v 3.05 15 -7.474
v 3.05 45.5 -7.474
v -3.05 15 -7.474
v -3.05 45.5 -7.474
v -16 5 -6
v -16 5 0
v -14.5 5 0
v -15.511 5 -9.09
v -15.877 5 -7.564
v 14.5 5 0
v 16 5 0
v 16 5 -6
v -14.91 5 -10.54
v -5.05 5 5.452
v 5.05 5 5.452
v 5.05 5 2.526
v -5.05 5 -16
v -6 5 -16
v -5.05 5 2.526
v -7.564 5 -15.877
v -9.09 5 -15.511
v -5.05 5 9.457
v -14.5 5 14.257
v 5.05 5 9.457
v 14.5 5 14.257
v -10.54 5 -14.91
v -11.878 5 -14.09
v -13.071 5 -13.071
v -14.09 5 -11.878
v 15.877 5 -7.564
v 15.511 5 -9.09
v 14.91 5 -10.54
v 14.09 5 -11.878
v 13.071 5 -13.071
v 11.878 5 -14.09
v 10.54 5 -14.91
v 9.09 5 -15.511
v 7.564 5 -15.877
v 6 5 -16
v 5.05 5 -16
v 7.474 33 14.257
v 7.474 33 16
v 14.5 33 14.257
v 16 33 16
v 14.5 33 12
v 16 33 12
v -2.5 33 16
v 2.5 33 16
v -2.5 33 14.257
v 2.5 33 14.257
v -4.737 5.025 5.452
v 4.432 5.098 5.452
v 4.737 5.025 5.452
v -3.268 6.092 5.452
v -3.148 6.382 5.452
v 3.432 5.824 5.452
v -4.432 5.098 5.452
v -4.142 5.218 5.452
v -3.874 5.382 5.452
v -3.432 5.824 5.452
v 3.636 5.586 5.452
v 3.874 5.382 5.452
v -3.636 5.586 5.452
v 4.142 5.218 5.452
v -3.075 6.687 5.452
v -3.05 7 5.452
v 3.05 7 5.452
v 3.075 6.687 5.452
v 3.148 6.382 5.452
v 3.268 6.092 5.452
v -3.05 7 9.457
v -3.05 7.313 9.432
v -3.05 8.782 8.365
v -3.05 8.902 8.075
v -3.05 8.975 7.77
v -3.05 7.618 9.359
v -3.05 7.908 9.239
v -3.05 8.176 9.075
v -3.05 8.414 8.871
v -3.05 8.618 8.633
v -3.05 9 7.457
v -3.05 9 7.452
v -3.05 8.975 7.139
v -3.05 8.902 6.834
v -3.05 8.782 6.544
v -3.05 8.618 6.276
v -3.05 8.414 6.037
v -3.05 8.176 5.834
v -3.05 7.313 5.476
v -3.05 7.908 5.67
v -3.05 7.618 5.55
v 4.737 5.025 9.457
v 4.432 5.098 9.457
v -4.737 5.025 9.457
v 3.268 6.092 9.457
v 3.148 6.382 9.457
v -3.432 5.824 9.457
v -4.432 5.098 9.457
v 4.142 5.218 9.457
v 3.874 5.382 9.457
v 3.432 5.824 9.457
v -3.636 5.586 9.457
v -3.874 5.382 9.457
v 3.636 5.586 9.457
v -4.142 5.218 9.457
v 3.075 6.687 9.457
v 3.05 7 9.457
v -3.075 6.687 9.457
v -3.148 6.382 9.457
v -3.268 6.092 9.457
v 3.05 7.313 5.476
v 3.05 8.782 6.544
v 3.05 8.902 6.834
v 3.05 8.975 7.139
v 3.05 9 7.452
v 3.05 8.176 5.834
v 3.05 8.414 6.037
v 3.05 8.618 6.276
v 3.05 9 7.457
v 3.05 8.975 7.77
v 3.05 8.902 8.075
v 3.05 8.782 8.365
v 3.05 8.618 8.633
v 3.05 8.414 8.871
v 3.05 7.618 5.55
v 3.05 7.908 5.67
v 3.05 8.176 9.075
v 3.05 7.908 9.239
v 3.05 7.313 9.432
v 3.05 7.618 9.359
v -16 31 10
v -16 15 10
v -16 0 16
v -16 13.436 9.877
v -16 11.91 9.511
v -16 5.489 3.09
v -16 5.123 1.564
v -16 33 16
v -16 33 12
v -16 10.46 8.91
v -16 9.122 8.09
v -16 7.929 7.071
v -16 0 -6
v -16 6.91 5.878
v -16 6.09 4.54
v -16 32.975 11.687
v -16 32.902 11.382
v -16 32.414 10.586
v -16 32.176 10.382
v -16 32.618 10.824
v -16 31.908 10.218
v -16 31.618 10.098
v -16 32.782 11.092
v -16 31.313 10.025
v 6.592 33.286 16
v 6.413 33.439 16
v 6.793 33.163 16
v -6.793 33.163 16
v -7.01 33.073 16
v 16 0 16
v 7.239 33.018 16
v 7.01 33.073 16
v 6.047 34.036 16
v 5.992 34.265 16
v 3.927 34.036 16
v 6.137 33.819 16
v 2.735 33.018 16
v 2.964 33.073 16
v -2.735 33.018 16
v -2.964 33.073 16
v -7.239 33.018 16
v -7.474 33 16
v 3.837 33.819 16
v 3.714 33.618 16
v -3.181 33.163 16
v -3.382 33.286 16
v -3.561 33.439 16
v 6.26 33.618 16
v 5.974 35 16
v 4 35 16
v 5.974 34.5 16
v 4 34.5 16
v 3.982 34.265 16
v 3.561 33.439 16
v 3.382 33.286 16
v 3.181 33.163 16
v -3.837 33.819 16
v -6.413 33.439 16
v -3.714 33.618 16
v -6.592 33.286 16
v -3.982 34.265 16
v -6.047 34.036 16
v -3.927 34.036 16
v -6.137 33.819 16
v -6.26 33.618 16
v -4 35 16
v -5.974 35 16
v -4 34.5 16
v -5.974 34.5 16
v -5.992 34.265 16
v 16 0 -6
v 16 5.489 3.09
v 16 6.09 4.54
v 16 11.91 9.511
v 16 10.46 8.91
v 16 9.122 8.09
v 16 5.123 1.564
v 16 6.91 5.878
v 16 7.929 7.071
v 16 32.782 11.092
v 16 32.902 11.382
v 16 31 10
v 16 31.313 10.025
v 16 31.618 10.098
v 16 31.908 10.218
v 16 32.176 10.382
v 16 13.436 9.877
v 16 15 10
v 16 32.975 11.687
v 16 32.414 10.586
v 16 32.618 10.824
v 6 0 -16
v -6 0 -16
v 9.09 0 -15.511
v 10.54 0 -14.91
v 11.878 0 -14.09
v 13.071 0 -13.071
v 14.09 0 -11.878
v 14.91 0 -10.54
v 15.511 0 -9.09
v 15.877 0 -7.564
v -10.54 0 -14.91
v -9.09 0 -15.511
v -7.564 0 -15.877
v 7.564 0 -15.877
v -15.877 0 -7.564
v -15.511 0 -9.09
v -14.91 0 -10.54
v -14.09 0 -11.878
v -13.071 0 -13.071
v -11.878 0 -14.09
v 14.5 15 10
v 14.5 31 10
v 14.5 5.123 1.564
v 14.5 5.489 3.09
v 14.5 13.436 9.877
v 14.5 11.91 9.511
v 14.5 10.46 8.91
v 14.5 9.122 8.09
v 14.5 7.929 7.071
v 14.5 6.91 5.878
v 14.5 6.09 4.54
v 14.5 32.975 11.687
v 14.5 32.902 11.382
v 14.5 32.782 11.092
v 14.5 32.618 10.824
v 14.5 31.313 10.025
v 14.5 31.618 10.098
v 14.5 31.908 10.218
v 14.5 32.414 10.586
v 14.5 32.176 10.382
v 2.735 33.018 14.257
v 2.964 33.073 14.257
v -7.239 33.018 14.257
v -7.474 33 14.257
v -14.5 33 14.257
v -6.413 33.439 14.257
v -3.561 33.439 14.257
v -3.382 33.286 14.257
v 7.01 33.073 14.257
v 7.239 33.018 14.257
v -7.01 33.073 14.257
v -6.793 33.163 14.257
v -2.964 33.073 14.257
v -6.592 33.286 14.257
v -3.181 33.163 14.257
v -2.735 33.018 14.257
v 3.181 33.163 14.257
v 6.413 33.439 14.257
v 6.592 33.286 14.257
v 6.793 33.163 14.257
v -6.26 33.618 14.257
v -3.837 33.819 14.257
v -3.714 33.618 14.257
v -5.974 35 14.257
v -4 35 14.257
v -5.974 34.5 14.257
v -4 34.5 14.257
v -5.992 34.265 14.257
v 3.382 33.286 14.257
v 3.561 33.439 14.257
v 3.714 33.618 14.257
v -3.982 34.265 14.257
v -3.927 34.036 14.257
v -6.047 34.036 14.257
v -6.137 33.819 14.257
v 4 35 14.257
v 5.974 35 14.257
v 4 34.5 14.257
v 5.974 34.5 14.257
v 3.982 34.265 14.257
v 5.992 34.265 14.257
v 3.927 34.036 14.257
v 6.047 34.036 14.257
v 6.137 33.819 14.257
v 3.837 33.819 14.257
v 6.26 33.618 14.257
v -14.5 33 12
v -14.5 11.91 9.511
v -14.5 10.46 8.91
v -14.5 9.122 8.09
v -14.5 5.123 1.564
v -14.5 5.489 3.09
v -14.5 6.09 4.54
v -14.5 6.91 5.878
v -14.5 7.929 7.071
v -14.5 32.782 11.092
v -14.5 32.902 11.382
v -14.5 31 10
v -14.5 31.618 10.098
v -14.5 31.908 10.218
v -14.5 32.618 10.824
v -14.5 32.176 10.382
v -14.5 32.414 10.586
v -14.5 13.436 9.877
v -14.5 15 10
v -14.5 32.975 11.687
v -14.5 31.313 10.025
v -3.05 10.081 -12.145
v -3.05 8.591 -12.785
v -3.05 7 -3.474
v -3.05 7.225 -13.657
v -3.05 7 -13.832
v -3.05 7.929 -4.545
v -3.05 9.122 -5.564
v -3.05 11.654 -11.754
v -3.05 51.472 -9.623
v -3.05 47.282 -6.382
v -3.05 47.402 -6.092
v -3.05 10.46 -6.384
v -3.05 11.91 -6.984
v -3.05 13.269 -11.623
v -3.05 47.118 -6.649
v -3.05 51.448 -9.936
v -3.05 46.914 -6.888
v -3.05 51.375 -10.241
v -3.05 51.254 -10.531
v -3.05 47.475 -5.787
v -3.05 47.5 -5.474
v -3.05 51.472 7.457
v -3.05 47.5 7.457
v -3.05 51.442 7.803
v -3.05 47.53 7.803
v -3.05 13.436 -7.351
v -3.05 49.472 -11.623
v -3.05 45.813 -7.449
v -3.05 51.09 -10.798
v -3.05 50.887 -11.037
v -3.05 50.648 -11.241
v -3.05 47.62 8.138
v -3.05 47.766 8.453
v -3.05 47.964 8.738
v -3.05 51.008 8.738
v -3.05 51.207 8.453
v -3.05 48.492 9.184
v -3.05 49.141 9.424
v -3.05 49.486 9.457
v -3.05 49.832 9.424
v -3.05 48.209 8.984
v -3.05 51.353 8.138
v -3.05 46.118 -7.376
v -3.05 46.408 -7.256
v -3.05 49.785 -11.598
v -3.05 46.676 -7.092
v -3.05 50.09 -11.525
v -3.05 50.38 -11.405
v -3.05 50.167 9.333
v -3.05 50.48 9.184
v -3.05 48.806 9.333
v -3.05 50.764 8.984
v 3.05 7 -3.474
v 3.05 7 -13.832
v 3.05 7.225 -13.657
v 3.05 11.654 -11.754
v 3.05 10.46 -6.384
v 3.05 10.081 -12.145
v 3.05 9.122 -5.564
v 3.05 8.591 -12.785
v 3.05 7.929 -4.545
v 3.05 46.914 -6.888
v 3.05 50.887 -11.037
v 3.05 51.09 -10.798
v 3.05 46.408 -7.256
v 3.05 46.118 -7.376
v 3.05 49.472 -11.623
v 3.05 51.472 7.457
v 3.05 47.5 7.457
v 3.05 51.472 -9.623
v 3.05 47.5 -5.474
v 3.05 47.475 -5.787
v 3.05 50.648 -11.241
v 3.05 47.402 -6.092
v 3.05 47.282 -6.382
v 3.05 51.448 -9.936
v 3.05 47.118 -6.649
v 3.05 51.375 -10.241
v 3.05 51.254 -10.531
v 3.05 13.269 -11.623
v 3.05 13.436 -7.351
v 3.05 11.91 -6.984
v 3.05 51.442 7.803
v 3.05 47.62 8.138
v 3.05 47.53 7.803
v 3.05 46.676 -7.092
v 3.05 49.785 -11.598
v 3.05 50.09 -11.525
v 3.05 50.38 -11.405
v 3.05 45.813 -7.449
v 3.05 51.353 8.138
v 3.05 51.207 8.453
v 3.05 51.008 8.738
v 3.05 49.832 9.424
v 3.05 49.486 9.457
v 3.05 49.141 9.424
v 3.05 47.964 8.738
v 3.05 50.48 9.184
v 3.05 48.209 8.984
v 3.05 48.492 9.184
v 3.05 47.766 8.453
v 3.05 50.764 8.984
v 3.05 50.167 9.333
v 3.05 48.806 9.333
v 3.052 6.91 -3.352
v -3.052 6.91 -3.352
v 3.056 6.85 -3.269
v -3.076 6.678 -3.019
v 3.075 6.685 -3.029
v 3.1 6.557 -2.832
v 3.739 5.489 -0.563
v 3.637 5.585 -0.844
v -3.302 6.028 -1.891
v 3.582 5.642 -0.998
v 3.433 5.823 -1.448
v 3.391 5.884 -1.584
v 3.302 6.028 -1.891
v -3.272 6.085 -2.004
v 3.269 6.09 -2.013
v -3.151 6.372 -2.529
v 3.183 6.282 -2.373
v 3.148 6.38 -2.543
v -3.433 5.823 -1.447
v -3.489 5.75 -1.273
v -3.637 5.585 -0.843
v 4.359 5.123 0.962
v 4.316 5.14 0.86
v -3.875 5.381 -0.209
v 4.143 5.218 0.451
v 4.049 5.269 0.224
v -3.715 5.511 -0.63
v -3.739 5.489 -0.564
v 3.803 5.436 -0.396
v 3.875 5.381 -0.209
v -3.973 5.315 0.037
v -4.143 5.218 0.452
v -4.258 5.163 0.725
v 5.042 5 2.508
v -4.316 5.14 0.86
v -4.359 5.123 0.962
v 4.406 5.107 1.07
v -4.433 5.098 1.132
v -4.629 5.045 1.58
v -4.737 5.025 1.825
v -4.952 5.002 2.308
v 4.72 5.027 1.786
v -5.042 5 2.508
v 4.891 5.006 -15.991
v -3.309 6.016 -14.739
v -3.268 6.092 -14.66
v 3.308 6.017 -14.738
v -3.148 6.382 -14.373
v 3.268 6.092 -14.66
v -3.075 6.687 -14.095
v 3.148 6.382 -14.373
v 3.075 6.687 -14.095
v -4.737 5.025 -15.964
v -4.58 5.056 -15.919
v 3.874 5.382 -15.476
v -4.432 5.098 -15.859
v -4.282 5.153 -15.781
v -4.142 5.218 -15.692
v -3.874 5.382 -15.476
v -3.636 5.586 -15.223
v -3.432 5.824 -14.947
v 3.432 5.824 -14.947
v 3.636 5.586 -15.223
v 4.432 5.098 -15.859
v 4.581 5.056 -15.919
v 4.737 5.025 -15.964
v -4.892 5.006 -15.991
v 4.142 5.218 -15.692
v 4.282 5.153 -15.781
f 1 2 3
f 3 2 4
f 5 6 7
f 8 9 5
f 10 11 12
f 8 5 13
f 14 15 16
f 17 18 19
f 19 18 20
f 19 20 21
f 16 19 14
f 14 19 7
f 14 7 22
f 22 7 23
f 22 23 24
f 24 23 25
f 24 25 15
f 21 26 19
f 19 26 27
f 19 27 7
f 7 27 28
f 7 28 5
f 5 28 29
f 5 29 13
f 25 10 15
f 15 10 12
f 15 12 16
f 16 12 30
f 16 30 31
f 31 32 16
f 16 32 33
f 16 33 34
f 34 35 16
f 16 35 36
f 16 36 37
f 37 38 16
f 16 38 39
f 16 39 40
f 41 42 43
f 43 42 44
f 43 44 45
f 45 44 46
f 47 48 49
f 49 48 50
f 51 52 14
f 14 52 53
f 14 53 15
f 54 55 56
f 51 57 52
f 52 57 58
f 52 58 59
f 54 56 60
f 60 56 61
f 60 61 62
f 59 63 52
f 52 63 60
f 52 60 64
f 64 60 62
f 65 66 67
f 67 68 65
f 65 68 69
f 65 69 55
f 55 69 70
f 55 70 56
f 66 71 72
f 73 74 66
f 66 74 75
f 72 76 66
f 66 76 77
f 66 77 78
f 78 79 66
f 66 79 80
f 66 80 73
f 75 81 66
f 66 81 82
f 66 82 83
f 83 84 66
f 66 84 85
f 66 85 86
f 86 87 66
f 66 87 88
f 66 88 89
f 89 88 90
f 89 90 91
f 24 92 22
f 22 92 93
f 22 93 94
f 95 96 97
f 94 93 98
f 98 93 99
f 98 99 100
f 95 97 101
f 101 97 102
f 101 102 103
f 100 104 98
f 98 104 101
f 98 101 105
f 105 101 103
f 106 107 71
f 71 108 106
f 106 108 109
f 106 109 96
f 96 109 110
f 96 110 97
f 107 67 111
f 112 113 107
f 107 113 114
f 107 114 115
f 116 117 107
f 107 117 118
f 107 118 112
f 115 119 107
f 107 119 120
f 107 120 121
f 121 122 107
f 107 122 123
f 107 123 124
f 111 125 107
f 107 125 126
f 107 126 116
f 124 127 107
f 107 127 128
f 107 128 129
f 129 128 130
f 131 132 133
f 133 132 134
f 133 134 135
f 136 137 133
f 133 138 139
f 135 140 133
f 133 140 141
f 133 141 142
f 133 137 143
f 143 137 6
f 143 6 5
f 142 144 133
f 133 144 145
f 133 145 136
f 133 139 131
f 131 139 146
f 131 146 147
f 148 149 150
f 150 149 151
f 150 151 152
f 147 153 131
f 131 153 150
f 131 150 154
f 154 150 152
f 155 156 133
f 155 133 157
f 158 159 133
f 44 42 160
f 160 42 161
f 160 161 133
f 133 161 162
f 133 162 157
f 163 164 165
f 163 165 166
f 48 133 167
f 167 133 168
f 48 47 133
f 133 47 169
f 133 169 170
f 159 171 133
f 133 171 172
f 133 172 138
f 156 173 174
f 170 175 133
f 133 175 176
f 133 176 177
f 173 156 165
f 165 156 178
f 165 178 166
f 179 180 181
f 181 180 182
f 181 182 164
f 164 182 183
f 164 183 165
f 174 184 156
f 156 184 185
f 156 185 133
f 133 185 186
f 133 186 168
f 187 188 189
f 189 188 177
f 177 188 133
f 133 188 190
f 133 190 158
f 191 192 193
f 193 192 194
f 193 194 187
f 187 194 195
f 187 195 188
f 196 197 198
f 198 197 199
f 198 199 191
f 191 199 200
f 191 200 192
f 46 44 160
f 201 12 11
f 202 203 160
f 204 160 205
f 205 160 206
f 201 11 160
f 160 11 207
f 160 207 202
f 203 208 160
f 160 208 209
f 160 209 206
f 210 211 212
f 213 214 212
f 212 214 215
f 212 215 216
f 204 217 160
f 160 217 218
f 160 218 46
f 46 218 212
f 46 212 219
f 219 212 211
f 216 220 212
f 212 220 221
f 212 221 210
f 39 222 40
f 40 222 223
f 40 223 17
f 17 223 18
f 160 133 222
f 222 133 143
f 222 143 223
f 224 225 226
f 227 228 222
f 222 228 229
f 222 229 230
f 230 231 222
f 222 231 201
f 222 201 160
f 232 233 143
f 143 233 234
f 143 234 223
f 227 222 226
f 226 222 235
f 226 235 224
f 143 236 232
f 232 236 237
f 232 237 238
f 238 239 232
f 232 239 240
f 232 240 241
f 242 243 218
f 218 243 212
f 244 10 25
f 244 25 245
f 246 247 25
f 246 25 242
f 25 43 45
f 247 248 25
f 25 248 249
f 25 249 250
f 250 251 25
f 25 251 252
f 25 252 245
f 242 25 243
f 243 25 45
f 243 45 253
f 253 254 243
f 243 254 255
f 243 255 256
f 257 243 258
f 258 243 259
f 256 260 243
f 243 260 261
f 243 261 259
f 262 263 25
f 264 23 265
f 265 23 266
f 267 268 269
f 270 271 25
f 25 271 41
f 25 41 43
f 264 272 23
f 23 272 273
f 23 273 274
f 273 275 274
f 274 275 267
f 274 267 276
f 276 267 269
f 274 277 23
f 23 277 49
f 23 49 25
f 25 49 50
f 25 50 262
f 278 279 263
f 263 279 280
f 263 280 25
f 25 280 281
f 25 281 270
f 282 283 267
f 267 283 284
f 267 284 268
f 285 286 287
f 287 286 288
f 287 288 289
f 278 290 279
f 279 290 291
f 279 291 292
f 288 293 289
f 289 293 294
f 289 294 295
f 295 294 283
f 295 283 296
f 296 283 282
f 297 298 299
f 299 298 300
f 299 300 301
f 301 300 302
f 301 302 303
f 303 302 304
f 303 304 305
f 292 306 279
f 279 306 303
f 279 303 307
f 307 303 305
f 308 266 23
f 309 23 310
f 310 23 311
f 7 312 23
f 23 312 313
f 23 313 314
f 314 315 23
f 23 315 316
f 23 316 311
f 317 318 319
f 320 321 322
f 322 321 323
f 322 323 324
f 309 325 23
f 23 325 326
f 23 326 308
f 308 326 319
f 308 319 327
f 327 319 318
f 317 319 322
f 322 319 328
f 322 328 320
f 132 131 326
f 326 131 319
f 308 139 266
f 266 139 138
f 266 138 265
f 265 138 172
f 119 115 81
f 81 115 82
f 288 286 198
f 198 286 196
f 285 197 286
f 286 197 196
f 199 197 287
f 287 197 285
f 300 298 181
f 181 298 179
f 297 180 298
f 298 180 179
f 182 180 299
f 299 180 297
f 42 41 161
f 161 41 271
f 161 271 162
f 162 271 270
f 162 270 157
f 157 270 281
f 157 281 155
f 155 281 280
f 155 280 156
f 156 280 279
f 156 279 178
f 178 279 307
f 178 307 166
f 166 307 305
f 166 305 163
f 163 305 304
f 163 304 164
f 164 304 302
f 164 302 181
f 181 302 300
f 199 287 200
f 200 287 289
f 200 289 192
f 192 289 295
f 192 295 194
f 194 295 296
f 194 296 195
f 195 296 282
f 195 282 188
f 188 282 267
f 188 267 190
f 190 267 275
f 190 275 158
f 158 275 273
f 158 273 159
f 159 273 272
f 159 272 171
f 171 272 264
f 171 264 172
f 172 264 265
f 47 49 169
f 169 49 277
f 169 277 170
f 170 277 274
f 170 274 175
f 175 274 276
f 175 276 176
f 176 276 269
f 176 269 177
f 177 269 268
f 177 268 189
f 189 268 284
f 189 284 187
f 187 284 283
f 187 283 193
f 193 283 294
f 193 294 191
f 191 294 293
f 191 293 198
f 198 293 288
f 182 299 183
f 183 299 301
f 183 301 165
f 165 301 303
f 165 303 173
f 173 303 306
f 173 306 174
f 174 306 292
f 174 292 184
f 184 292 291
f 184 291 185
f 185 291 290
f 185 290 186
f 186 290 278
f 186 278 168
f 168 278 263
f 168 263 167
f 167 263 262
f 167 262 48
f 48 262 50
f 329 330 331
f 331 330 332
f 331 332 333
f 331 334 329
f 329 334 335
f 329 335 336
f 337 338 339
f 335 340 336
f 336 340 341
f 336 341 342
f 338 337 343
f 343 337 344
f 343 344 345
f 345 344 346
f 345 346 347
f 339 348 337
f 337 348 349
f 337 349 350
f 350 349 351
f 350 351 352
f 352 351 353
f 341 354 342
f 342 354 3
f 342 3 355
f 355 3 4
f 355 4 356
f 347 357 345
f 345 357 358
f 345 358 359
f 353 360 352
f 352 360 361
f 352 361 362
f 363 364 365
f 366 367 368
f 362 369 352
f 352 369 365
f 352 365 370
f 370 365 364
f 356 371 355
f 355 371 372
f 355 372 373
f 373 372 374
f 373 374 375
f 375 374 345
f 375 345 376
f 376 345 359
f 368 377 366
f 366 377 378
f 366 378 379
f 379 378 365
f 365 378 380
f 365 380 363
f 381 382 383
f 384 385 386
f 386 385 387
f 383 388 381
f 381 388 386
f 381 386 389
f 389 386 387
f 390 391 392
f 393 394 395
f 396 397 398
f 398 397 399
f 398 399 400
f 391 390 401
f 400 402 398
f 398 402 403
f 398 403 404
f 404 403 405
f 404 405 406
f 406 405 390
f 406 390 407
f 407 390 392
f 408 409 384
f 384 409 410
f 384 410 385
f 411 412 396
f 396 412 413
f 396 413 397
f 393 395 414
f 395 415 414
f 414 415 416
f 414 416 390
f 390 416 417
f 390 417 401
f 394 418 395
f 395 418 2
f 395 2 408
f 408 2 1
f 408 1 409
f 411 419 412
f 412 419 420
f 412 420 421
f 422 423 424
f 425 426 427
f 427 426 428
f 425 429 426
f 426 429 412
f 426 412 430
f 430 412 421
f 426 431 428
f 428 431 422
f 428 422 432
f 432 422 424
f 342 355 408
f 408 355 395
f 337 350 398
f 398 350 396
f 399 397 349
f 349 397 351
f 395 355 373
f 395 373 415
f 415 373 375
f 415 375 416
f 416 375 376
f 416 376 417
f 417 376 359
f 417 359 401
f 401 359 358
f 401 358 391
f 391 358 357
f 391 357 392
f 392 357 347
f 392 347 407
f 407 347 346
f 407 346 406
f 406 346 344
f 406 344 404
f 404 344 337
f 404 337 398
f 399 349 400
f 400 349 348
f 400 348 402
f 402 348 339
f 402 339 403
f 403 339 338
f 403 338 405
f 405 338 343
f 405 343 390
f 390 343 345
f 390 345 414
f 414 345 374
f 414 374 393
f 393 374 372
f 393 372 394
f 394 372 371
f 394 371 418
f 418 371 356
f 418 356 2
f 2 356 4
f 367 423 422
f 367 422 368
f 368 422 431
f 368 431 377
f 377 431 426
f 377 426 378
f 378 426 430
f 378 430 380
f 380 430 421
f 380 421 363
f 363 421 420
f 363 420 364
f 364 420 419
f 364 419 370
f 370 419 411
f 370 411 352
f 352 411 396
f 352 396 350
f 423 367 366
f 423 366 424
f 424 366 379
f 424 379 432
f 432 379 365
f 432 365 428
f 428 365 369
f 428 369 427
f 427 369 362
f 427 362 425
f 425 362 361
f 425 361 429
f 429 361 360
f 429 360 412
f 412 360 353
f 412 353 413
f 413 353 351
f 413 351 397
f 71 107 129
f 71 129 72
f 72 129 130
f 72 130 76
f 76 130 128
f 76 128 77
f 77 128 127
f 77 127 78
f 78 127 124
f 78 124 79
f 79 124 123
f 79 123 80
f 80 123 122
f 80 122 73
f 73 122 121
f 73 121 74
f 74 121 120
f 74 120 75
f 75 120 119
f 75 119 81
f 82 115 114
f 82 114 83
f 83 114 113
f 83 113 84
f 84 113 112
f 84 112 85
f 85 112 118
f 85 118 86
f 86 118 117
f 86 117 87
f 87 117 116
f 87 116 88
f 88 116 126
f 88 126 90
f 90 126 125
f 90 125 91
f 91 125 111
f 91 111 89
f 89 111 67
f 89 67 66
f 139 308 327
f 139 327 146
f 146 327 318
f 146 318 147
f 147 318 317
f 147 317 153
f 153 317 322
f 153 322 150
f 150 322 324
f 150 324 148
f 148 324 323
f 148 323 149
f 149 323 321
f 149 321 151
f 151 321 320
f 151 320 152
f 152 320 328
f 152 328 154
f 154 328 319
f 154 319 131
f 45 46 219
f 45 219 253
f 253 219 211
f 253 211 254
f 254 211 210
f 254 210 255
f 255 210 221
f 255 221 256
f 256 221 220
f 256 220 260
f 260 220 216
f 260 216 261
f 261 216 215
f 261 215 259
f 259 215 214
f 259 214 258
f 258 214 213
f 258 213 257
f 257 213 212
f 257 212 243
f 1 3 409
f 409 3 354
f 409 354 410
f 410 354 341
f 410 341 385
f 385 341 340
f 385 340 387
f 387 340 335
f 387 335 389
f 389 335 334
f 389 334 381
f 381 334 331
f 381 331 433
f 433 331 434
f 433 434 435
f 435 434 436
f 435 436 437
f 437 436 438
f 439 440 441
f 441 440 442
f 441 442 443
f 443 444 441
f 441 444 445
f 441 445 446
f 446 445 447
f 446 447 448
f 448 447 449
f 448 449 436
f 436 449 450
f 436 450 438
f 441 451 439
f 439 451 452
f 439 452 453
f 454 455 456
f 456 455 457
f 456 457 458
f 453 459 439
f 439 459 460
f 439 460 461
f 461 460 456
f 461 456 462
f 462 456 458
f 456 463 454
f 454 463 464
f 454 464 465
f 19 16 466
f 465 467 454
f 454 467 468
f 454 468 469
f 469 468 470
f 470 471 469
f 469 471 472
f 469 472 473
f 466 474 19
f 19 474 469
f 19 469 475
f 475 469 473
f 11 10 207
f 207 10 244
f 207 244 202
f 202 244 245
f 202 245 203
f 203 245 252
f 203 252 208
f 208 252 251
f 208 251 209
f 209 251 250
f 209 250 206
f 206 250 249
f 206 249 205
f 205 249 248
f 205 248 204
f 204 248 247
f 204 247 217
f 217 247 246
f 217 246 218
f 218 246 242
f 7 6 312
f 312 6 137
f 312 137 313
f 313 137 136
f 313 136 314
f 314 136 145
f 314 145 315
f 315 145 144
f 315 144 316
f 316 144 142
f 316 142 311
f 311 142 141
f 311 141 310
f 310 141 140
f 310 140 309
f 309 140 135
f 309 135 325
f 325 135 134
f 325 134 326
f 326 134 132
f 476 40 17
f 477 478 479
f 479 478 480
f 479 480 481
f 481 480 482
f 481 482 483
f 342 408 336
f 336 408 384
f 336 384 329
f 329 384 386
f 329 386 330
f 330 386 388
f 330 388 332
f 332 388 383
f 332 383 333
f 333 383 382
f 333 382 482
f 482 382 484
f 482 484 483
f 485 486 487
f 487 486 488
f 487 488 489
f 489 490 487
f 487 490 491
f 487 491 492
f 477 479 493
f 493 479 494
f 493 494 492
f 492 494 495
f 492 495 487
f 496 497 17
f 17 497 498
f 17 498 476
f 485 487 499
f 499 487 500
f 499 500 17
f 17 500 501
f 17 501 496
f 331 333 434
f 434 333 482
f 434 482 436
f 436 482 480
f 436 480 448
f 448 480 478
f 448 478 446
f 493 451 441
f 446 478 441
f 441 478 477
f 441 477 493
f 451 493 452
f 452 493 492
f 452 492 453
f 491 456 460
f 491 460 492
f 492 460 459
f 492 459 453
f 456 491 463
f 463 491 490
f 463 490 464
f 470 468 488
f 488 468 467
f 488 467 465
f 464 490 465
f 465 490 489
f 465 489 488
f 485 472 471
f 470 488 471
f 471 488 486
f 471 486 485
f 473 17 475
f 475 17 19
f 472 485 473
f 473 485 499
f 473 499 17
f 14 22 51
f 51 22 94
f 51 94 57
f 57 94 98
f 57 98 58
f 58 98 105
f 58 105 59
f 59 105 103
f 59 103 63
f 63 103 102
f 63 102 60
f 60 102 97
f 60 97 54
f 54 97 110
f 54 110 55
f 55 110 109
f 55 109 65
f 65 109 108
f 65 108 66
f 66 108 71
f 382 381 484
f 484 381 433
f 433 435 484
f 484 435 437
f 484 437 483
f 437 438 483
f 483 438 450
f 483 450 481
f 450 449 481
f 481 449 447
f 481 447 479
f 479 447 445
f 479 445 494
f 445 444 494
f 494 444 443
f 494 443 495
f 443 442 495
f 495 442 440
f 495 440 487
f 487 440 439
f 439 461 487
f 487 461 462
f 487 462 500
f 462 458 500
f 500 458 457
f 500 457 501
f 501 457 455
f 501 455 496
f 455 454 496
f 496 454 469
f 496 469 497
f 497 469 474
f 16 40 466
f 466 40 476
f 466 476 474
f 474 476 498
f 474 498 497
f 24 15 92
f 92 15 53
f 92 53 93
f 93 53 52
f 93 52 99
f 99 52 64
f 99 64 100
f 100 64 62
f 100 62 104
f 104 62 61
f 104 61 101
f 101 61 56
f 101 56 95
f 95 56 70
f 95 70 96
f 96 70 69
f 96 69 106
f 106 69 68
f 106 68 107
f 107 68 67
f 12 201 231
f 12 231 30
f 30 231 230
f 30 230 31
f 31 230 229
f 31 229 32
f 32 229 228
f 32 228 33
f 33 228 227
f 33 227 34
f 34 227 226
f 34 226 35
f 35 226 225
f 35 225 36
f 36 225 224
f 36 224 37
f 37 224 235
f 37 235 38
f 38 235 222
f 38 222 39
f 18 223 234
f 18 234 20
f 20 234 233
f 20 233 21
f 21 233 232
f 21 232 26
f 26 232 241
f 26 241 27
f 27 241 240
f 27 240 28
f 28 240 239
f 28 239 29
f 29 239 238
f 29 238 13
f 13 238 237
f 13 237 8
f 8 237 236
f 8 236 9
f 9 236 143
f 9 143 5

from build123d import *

# Parameters (mm, degrees)
SKETCH1_W           = 32
SKETCH1_H           = 32
BOSS_EXTRUDE1_DEPTH = 5
BOSS_EXTRUDE5_DEPTH = 28
SKETCH6_W           = 6.1
SKETCH6_H           = 4.005404858
CUT_EXTRUDE2_DEPTH  = 24
SKETCH7_W           = 1.973672473
SKETCH7_H           = 2
BOSS_EXTRUDE6_DEPTH = 1.742972258
FILLET1_R           = 1.5
SKETCH8_W           = 6.1
SKETCH8_H           = 4.149014421
BOSS_EXTRUDE7_DEPTH = 42.5
SKETCH9_W           = 6.1
SKETCH9_H           = 3.972443091
BOSS_EXTRUDE8_DEPTH = 16.930897648
SKETCH10_W          = 6.1
SKETCH10_H          = 3.972443091
BOSS_EXTRUDE9_DEPTH = 4.149014421
FILLET3_R           = 2
FILLET5_R           = 10
FILLET6_R           = 2
FILLET7_R           = 10


with BuildPart() as part:
    # Sketch1 → Boss-Extrude1 (new body)
    with BuildSketch(Plane(origin=(0, 0, 0), x_dir=(1, 0, 0), z_dir=(0, 1, 0))):
        Rectangle(SKETCH1_W, SKETCH1_H)
    extrude(amount=BOSS_EXTRUDE1_DEPTH)

    # Sketch2 → Boss-Extrude5 (add)
    with BuildSketch(Plane(origin=(0, 5, 0), x_dir=(1, 0, 0), z_dir=(0, 1, 0))):
        Polygon((3.05, -5.451622884), (-3.05, -5.451622884), (-3.05, -9.457027742), (0, -9.457027742), (3.05, -9.457027742), align=None)
        Polygon((-14.5, -16), (0, -16), (14.5, -16), (16, -16), (16, -10), (14.5, -10), (14.5, -14.257027742), (0, -14.257027742), (-14.5, -14.257027742), (-14.5, -10), (-16, -10), (-16, -16), align=None)
    extrude(amount=BOSS_EXTRUDE5_DEPTH)

    # Sketch6 → Cut-Extrude2 (cut)
    with BuildSketch(Plane(origin=(0, 33, 0), x_dir=(1, 0, 0), z_dir=(0, 1, 0))):
        with Locations((0, -7.454325313)):
            Rectangle(SKETCH6_W, SKETCH6_H)
    extrude(amount=-CUT_EXTRUDE2_DEPTH, mode=Mode.SUBTRACT)

    # Sketch7 → Boss-Extrude6 (add)
    with BuildSketch(Plane.XY.offset(16)):
        with Locations((-4.986836237, 34)):
            Rectangle(SKETCH7_W, SKETCH7_H)
        with Locations((4.986836237, 34)):
            Rectangle(SKETCH7_W, SKETCH7_H)
    extrude(amount=-BOSS_EXTRUDE6_DEPTH)

    # Fillet1
    fillet1_edges = [part.edges().sort_by_distance(p)[0] for p in [
        (-5.973672473, 33, 15.128513871),
        (-4, 33, 15.128513871),
        (5.973672473, 33, 15.128513871),
        (4, 33, 15.128513871),
    ]]
    fillet(fillet1_edges, radius=FILLET1_R)

    # Sketch8 → Boss-Extrude7 (add)
    with BuildSketch(Plane(origin=(0, 5, 0), x_dir=(1, 0, 0), z_dir=(0, 1, 0))):
        with Locations((0, 9.548377117)):
            Rectangle(SKETCH8_W, SKETCH8_H)
    extrude(amount=BOSS_EXTRUDE7_DEPTH)



with BuildPart() as body_2:
    # Sketch9 → Boss-Extrude8 (new body)
    with BuildSketch(Plane.XY.offset(-7.473869906)):
        with Locations((0, 49.486221546)):
            Rectangle(SKETCH9_W, SKETCH9_H)
    extrude(amount=BOSS_EXTRUDE8_DEPTH)


with BuildPart() as part_1:
    add(part.part)

    add(body_2.part)  # Boss-Extrude9 merges body 2
    # Sketch10 → Boss-Extrude9 (add)
    with BuildSketch(Plane(origin=(0, 0, -7.473869906), x_dir=(-1, 0, 0), z_dir=(0, 0, -1))):
        with Locations((0, 49.486221546)):
            Rectangle(SKETCH10_W, SKETCH10_H)
    extrude(amount=BOSS_EXTRUDE9_DEPTH)

    # Fillet3
    # the kernel refuses this fillet: 2 mm, written as the material it adds along each edge
    with BuildSketch(Plane(origin=(3.05, 47.5, -7.473869906), x_dir=(0, 0, 1), z_dir=(-1, 0, 0))) as fillet3_piece_1:
        with BuildLine():
            CenterArc((FILLET3_R, -FILLET3_R), FILLET3_R, 90, 90)
            Line((0, -FILLET3_R), (0, 0))
            Line((0, 0), (FILLET3_R, 0))
        make_face()
    extrude(amount=6.1)
    # the kernel refuses this fillet: 2 mm, written as the material it takes off along each edge
    with BuildSketch(Plane(origin=(8.05, 51.472443091, -11.622884327), x_dir=(0, -1, 0), z_dir=(-1, 0, 0)), Plane(origin=(-8.05, 51.472443091, 9.457027742), x_dir=(0, -1, 0), z_dir=(1, 0, 0))) as fillet3_2_piece_1:
        with BuildLine():
            CenterArc((FILLET3_R, FILLET3_R), FILLET3_R, 180, 90)
            Line((0, FILLET3_R), (0, 0))
            Line((0, 0), (FILLET3_R, 0))
        make_face()
    extrude(amount=16.1, mode=Mode.SUBTRACT)
    with BuildSketch(Plane(origin=(8.05, 47.5, 9.457027742), x_dir=(0, 0, -1), z_dir=(-1, 0, 0)), Plane(origin=(-8.05, 9, 5.451622884), x_dir=(0, -1, 0), z_dir=(1, 0, 0)), Plane(origin=(8.05, 9, 9.457027742), x_dir=(0, -1, 0), z_dir=(-1, 0, 0))) as fillet3_2_piece_2:
        with BuildLine():
            CenterArc((FILLET3_R, -FILLET3_R), FILLET3_R, 90, 90)
            Line((0, -FILLET3_R), (0, 0))
            Line((0, 0), (FILLET3_R, 0))
        make_face()
    extrude(amount=16.1, mode=Mode.SUBTRACT)
    with BuildSketch(Plane(origin=(21, 33, 10), x_dir=(0, 0, 1), z_dir=(-1, 0, 0)), Plane(origin=(-9.5, 33, 10), x_dir=(0, 0, 1), z_dir=(-1, 0, 0))) as fillet3_2_piece_3:
        with BuildLine():
            CenterArc((FILLET3_R, -FILLET3_R), FILLET3_R, 90, 90)
            Line((0, -FILLET3_R), (0, 0))
            Line((0, 0), (FILLET3_R, 0))
        make_face()
    extrude(amount=11.5, mode=Mode.SUBTRACT)

    # Fillet5
    # the kernel refuses this fillet: 10 mm, written as the material it adds along each edge
    with BuildSketch(Plane(origin=(-3.05, 5, -7.473869906), x_dir=(0, 1, 0), z_dir=(1, 0, 0))) as fillet5_piece_1:
        with BuildLine():
            CenterArc((FILLET5_R, FILLET5_R), FILLET5_R, 180, 90)
            Line((0, FILLET5_R), (-FILLET5_R * 0.02, FILLET5_R))
            Line((-FILLET5_R * 0.02, FILLET5_R), (-FILLET5_R * 0.02, -FILLET5_R * 0.02))
            Line((-FILLET5_R * 0.02, -FILLET5_R * 0.02), (FILLET5_R, -FILLET5_R * 0.02))
            Line((FILLET5_R, -FILLET5_R * 0.02), (FILLET5_R, 0))
        make_face()
    extrude(amount=6.1)
    with BuildSketch(Plane(origin=(3.05, 5, -11.622884327), x_dir=(0, 0, -1), z_dir=(-1, 0, 0))) as fillet5_piece_2:
        with BuildLine():
            CenterArc((10, -8.26941182), FILLET5_R, 124.214206314, 55.785793686)
            Line((0, -8.26941182), (-0.2, -8.26941182))
            Line((-0.2, -8.26941182), (-0.2, 0))
            Line((-0.2, 0), (0, 0.2))
            ThreePointArc((0, 0.2), (2.188557837, 0.2), (4.264657987, 0.165388236))
            Line((4.264657987, 0.165388236), (4.377115673, 0))
        make_face()
    extrude(amount=6.1)
    with BuildSketch(Plane(origin=(-14.5, 5, 10), x_dir=(0, 0, -1), z_dir=(-1, 0, 0)), Plane(origin=(16, 5, 10), x_dir=(0, 0, -1), z_dir=(-1, 0, 0))) as fillet5_piece_3:
        with BuildLine():
            CenterArc((FILLET5_R, -FILLET5_R), FILLET5_R, 90, 90)
            Line((0, -FILLET5_R), (-FILLET5_R * 0.02, -FILLET5_R))
            Line((-FILLET5_R * 0.02, -FILLET5_R), (-FILLET5_R * 0.02, FILLET5_R * 0.02))
            Line((-FILLET5_R * 0.02, FILLET5_R * 0.02), (FILLET5_R, FILLET5_R * 0.02))
            Line((FILLET5_R, FILLET5_R * 0.02), (FILLET5_R, 0))
        make_face()
    extrude(amount=1.5)

    # Fillet6
    fillet6_edges = [part_1.edges().sort_by_distance(p)[0] for p in [
        (-3.05, 5, -6.736934953),
        (-3.05, 5, 7.454325313),
        (3.05, 5, -6.736934953),
        (3.05, 5, 7.454325313),
    ]]
    fillet(fillet6_edges, radius=FILLET6_R)

    # Fillet7
    fillet7_edges = [part_1.edges().sort_by_distance(p)[0] for p in [
        (-16, 2.5, -16),
        (16, 2.5, -16),
    ]]
    fillet(fillet7_edges, radius=FILLET7_R)


solid = part_1.part
